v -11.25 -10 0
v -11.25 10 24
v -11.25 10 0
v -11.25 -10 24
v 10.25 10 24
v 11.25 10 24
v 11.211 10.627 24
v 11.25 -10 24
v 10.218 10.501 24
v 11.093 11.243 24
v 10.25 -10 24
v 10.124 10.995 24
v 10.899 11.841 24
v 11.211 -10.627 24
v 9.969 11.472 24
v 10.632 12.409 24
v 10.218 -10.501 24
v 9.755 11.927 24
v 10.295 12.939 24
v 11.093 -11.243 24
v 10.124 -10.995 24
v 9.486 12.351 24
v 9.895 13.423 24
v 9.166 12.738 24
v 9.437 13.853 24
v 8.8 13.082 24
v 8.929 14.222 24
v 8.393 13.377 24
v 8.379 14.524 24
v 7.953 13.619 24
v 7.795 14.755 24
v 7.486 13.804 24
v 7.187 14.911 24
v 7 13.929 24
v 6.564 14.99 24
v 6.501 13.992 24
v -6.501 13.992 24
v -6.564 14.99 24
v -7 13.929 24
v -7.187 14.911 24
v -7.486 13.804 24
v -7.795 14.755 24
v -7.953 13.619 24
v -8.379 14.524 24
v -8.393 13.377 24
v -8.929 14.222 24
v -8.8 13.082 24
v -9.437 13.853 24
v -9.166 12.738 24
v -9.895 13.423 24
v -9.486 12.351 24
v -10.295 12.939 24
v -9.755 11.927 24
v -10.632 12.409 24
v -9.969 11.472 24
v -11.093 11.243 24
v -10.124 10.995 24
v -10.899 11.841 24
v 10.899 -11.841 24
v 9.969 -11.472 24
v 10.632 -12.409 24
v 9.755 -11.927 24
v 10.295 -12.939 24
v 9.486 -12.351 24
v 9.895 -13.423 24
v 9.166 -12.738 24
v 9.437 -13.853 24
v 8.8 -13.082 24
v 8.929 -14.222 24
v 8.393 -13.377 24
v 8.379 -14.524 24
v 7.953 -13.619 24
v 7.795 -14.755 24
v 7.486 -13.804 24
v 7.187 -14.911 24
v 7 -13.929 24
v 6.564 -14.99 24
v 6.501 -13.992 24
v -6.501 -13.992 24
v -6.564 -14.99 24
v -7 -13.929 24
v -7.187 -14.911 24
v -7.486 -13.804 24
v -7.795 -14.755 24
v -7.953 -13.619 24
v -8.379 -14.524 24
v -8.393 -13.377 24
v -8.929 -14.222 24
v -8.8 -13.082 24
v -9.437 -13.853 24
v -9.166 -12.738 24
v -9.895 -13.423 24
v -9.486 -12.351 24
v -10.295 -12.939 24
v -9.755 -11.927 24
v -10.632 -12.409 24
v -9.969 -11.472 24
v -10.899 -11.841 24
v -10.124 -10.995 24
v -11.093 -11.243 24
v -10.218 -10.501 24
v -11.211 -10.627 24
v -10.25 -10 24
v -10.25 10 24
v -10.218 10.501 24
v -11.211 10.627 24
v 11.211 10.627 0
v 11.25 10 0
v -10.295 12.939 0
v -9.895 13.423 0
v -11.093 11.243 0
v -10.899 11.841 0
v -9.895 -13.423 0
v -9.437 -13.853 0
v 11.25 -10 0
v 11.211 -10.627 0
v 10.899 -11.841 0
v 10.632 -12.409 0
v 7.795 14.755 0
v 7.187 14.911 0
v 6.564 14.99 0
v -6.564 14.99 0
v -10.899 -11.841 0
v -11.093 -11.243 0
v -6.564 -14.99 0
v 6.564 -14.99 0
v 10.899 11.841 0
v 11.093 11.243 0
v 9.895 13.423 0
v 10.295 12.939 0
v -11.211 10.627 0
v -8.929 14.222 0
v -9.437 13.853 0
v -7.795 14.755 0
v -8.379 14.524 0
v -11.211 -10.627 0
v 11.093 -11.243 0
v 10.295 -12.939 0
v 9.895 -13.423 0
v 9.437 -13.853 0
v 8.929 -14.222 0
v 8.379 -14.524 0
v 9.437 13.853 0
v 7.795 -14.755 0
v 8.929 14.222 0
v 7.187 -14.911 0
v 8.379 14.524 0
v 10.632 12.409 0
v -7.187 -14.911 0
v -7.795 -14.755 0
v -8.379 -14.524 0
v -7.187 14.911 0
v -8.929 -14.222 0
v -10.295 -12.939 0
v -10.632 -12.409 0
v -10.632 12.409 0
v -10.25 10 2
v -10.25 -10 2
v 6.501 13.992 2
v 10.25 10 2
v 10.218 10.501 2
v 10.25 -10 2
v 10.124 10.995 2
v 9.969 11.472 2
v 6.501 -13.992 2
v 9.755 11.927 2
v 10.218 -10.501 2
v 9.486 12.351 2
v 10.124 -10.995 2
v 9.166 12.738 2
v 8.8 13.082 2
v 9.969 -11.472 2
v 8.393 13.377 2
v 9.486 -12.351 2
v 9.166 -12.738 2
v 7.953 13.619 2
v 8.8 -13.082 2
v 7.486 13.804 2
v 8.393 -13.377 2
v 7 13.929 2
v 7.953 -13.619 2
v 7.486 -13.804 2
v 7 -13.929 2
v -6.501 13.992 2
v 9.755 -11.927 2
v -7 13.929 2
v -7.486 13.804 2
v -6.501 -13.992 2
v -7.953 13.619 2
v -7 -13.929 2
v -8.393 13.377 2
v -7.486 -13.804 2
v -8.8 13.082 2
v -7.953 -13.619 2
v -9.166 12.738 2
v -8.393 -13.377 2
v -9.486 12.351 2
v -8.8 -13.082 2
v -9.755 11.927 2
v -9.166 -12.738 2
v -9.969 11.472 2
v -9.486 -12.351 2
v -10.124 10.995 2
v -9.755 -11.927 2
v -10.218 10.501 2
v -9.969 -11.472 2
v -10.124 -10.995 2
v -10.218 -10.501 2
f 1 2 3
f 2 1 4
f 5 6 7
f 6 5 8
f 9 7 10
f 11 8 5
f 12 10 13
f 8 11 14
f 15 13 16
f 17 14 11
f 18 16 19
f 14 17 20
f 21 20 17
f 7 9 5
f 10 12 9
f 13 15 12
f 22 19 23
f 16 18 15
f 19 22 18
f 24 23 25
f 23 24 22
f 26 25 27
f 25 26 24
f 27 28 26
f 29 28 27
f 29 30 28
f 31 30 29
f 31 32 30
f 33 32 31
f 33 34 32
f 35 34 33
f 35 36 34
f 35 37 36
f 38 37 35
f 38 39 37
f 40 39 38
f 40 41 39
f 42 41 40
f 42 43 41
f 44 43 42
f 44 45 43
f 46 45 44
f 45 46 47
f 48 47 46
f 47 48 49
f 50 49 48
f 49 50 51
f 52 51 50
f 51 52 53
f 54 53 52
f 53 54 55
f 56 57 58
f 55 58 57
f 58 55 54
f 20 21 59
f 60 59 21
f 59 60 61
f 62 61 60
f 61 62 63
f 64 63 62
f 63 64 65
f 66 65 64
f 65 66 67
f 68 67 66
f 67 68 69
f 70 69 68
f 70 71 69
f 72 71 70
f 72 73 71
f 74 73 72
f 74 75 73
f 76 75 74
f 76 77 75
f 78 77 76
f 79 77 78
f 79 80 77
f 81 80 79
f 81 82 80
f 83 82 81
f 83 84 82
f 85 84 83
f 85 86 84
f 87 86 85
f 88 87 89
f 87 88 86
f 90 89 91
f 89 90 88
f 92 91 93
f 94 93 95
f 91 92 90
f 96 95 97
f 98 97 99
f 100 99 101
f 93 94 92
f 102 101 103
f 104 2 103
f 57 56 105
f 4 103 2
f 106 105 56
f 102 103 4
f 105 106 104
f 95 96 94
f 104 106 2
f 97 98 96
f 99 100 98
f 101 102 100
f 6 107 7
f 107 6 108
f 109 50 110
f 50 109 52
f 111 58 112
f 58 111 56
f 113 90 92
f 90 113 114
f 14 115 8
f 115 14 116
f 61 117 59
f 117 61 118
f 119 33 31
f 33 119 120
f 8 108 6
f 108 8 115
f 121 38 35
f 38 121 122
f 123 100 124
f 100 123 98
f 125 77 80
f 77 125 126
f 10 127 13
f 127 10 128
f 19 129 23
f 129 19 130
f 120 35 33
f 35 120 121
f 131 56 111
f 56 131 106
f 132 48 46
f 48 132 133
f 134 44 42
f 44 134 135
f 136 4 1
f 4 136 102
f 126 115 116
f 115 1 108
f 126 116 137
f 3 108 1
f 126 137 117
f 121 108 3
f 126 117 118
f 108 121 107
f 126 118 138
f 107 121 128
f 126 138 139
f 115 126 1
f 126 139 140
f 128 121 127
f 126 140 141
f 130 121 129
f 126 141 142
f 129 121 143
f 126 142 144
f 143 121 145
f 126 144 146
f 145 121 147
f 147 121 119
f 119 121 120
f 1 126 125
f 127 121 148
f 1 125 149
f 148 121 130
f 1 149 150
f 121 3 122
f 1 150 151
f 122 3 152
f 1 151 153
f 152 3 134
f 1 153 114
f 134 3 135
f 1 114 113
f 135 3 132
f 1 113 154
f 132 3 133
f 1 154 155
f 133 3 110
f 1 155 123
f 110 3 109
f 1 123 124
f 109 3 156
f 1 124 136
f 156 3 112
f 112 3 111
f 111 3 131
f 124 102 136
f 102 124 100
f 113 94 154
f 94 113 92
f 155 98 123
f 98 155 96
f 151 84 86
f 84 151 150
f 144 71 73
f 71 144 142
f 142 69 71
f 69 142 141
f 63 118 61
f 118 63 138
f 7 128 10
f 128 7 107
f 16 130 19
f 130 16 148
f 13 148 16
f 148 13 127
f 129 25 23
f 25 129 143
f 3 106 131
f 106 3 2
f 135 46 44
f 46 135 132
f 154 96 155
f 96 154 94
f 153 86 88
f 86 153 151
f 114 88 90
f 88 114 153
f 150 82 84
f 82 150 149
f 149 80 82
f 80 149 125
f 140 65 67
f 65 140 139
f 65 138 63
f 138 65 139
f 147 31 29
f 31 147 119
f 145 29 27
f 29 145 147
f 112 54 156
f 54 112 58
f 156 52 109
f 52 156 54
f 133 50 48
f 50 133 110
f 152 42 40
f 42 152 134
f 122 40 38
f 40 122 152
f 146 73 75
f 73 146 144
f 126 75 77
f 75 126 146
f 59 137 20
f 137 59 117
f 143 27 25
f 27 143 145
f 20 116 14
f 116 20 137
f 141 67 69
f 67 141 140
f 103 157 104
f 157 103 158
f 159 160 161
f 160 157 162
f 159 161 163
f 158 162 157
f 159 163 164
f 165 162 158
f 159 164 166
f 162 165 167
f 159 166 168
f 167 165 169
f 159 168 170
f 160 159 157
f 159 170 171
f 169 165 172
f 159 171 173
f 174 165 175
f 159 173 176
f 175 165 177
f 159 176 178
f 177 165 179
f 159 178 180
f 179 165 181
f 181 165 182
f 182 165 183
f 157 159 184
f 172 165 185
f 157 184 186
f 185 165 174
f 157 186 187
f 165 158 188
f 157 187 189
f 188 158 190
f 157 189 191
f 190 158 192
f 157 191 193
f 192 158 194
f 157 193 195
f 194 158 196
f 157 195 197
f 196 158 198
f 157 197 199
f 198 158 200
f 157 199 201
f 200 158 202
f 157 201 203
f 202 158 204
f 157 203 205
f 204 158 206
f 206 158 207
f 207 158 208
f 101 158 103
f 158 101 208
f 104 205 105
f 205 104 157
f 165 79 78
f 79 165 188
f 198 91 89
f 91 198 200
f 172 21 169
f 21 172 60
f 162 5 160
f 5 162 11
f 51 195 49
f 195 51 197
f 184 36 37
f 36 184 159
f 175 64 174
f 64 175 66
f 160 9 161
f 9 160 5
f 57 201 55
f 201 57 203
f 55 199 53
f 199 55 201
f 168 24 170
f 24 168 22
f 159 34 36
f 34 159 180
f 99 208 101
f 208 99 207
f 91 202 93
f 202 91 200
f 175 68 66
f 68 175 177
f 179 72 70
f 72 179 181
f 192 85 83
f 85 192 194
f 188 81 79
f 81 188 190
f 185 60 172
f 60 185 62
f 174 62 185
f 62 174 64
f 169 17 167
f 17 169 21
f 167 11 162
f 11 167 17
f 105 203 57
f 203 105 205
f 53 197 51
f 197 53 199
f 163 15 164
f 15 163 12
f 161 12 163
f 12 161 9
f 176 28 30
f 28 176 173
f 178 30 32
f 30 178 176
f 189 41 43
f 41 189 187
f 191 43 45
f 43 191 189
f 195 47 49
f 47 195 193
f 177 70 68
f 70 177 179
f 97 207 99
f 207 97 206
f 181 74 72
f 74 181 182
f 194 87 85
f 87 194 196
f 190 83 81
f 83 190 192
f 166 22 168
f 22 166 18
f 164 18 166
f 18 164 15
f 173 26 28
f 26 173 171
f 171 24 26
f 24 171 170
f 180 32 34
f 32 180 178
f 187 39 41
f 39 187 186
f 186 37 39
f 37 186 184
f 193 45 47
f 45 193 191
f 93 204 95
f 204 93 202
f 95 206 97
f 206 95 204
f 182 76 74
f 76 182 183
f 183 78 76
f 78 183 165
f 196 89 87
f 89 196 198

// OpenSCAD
$fn = 50;


difference() {
	union() {
		hull() {
			translate(v = [-6.2500000000, 10.0000000000, 0]) {
				cylinder(h = 24, r = 5);
			}
			translate(v = [6.2500000000, 10.0000000000, 0]) {
				cylinder(h = 24, r = 5);
			}
			translate(v = [-6.2500000000, -10.0000000000, 0]) {
				cylinder(h = 24, r = 5);
			}
			translate(v = [6.2500000000, -10.0000000000, 0]) {
				cylinder(h = 24, r = 5);
			}
		}
	}
	union() {
		translate(v = [0, 0, 2]) {
			hull() {
				translate(v = [-6.2500000000, 10.0000000000, 0]) {
					cylinder(h = 22, r = 4);
				}
				translate(v = [6.2500000000, 10.0000000000, 0]) {
					cylinder(h = 22, r = 4);
				}
				translate(v = [-6.2500000000, -10.0000000000, 0]) {
					cylinder(h = 22, r = 4);
				}
				translate(v = [6.2500000000, -10.0000000000, 0]) {
					cylinder(h = 22, r = 4);
				}
			}
		}
	}
}
